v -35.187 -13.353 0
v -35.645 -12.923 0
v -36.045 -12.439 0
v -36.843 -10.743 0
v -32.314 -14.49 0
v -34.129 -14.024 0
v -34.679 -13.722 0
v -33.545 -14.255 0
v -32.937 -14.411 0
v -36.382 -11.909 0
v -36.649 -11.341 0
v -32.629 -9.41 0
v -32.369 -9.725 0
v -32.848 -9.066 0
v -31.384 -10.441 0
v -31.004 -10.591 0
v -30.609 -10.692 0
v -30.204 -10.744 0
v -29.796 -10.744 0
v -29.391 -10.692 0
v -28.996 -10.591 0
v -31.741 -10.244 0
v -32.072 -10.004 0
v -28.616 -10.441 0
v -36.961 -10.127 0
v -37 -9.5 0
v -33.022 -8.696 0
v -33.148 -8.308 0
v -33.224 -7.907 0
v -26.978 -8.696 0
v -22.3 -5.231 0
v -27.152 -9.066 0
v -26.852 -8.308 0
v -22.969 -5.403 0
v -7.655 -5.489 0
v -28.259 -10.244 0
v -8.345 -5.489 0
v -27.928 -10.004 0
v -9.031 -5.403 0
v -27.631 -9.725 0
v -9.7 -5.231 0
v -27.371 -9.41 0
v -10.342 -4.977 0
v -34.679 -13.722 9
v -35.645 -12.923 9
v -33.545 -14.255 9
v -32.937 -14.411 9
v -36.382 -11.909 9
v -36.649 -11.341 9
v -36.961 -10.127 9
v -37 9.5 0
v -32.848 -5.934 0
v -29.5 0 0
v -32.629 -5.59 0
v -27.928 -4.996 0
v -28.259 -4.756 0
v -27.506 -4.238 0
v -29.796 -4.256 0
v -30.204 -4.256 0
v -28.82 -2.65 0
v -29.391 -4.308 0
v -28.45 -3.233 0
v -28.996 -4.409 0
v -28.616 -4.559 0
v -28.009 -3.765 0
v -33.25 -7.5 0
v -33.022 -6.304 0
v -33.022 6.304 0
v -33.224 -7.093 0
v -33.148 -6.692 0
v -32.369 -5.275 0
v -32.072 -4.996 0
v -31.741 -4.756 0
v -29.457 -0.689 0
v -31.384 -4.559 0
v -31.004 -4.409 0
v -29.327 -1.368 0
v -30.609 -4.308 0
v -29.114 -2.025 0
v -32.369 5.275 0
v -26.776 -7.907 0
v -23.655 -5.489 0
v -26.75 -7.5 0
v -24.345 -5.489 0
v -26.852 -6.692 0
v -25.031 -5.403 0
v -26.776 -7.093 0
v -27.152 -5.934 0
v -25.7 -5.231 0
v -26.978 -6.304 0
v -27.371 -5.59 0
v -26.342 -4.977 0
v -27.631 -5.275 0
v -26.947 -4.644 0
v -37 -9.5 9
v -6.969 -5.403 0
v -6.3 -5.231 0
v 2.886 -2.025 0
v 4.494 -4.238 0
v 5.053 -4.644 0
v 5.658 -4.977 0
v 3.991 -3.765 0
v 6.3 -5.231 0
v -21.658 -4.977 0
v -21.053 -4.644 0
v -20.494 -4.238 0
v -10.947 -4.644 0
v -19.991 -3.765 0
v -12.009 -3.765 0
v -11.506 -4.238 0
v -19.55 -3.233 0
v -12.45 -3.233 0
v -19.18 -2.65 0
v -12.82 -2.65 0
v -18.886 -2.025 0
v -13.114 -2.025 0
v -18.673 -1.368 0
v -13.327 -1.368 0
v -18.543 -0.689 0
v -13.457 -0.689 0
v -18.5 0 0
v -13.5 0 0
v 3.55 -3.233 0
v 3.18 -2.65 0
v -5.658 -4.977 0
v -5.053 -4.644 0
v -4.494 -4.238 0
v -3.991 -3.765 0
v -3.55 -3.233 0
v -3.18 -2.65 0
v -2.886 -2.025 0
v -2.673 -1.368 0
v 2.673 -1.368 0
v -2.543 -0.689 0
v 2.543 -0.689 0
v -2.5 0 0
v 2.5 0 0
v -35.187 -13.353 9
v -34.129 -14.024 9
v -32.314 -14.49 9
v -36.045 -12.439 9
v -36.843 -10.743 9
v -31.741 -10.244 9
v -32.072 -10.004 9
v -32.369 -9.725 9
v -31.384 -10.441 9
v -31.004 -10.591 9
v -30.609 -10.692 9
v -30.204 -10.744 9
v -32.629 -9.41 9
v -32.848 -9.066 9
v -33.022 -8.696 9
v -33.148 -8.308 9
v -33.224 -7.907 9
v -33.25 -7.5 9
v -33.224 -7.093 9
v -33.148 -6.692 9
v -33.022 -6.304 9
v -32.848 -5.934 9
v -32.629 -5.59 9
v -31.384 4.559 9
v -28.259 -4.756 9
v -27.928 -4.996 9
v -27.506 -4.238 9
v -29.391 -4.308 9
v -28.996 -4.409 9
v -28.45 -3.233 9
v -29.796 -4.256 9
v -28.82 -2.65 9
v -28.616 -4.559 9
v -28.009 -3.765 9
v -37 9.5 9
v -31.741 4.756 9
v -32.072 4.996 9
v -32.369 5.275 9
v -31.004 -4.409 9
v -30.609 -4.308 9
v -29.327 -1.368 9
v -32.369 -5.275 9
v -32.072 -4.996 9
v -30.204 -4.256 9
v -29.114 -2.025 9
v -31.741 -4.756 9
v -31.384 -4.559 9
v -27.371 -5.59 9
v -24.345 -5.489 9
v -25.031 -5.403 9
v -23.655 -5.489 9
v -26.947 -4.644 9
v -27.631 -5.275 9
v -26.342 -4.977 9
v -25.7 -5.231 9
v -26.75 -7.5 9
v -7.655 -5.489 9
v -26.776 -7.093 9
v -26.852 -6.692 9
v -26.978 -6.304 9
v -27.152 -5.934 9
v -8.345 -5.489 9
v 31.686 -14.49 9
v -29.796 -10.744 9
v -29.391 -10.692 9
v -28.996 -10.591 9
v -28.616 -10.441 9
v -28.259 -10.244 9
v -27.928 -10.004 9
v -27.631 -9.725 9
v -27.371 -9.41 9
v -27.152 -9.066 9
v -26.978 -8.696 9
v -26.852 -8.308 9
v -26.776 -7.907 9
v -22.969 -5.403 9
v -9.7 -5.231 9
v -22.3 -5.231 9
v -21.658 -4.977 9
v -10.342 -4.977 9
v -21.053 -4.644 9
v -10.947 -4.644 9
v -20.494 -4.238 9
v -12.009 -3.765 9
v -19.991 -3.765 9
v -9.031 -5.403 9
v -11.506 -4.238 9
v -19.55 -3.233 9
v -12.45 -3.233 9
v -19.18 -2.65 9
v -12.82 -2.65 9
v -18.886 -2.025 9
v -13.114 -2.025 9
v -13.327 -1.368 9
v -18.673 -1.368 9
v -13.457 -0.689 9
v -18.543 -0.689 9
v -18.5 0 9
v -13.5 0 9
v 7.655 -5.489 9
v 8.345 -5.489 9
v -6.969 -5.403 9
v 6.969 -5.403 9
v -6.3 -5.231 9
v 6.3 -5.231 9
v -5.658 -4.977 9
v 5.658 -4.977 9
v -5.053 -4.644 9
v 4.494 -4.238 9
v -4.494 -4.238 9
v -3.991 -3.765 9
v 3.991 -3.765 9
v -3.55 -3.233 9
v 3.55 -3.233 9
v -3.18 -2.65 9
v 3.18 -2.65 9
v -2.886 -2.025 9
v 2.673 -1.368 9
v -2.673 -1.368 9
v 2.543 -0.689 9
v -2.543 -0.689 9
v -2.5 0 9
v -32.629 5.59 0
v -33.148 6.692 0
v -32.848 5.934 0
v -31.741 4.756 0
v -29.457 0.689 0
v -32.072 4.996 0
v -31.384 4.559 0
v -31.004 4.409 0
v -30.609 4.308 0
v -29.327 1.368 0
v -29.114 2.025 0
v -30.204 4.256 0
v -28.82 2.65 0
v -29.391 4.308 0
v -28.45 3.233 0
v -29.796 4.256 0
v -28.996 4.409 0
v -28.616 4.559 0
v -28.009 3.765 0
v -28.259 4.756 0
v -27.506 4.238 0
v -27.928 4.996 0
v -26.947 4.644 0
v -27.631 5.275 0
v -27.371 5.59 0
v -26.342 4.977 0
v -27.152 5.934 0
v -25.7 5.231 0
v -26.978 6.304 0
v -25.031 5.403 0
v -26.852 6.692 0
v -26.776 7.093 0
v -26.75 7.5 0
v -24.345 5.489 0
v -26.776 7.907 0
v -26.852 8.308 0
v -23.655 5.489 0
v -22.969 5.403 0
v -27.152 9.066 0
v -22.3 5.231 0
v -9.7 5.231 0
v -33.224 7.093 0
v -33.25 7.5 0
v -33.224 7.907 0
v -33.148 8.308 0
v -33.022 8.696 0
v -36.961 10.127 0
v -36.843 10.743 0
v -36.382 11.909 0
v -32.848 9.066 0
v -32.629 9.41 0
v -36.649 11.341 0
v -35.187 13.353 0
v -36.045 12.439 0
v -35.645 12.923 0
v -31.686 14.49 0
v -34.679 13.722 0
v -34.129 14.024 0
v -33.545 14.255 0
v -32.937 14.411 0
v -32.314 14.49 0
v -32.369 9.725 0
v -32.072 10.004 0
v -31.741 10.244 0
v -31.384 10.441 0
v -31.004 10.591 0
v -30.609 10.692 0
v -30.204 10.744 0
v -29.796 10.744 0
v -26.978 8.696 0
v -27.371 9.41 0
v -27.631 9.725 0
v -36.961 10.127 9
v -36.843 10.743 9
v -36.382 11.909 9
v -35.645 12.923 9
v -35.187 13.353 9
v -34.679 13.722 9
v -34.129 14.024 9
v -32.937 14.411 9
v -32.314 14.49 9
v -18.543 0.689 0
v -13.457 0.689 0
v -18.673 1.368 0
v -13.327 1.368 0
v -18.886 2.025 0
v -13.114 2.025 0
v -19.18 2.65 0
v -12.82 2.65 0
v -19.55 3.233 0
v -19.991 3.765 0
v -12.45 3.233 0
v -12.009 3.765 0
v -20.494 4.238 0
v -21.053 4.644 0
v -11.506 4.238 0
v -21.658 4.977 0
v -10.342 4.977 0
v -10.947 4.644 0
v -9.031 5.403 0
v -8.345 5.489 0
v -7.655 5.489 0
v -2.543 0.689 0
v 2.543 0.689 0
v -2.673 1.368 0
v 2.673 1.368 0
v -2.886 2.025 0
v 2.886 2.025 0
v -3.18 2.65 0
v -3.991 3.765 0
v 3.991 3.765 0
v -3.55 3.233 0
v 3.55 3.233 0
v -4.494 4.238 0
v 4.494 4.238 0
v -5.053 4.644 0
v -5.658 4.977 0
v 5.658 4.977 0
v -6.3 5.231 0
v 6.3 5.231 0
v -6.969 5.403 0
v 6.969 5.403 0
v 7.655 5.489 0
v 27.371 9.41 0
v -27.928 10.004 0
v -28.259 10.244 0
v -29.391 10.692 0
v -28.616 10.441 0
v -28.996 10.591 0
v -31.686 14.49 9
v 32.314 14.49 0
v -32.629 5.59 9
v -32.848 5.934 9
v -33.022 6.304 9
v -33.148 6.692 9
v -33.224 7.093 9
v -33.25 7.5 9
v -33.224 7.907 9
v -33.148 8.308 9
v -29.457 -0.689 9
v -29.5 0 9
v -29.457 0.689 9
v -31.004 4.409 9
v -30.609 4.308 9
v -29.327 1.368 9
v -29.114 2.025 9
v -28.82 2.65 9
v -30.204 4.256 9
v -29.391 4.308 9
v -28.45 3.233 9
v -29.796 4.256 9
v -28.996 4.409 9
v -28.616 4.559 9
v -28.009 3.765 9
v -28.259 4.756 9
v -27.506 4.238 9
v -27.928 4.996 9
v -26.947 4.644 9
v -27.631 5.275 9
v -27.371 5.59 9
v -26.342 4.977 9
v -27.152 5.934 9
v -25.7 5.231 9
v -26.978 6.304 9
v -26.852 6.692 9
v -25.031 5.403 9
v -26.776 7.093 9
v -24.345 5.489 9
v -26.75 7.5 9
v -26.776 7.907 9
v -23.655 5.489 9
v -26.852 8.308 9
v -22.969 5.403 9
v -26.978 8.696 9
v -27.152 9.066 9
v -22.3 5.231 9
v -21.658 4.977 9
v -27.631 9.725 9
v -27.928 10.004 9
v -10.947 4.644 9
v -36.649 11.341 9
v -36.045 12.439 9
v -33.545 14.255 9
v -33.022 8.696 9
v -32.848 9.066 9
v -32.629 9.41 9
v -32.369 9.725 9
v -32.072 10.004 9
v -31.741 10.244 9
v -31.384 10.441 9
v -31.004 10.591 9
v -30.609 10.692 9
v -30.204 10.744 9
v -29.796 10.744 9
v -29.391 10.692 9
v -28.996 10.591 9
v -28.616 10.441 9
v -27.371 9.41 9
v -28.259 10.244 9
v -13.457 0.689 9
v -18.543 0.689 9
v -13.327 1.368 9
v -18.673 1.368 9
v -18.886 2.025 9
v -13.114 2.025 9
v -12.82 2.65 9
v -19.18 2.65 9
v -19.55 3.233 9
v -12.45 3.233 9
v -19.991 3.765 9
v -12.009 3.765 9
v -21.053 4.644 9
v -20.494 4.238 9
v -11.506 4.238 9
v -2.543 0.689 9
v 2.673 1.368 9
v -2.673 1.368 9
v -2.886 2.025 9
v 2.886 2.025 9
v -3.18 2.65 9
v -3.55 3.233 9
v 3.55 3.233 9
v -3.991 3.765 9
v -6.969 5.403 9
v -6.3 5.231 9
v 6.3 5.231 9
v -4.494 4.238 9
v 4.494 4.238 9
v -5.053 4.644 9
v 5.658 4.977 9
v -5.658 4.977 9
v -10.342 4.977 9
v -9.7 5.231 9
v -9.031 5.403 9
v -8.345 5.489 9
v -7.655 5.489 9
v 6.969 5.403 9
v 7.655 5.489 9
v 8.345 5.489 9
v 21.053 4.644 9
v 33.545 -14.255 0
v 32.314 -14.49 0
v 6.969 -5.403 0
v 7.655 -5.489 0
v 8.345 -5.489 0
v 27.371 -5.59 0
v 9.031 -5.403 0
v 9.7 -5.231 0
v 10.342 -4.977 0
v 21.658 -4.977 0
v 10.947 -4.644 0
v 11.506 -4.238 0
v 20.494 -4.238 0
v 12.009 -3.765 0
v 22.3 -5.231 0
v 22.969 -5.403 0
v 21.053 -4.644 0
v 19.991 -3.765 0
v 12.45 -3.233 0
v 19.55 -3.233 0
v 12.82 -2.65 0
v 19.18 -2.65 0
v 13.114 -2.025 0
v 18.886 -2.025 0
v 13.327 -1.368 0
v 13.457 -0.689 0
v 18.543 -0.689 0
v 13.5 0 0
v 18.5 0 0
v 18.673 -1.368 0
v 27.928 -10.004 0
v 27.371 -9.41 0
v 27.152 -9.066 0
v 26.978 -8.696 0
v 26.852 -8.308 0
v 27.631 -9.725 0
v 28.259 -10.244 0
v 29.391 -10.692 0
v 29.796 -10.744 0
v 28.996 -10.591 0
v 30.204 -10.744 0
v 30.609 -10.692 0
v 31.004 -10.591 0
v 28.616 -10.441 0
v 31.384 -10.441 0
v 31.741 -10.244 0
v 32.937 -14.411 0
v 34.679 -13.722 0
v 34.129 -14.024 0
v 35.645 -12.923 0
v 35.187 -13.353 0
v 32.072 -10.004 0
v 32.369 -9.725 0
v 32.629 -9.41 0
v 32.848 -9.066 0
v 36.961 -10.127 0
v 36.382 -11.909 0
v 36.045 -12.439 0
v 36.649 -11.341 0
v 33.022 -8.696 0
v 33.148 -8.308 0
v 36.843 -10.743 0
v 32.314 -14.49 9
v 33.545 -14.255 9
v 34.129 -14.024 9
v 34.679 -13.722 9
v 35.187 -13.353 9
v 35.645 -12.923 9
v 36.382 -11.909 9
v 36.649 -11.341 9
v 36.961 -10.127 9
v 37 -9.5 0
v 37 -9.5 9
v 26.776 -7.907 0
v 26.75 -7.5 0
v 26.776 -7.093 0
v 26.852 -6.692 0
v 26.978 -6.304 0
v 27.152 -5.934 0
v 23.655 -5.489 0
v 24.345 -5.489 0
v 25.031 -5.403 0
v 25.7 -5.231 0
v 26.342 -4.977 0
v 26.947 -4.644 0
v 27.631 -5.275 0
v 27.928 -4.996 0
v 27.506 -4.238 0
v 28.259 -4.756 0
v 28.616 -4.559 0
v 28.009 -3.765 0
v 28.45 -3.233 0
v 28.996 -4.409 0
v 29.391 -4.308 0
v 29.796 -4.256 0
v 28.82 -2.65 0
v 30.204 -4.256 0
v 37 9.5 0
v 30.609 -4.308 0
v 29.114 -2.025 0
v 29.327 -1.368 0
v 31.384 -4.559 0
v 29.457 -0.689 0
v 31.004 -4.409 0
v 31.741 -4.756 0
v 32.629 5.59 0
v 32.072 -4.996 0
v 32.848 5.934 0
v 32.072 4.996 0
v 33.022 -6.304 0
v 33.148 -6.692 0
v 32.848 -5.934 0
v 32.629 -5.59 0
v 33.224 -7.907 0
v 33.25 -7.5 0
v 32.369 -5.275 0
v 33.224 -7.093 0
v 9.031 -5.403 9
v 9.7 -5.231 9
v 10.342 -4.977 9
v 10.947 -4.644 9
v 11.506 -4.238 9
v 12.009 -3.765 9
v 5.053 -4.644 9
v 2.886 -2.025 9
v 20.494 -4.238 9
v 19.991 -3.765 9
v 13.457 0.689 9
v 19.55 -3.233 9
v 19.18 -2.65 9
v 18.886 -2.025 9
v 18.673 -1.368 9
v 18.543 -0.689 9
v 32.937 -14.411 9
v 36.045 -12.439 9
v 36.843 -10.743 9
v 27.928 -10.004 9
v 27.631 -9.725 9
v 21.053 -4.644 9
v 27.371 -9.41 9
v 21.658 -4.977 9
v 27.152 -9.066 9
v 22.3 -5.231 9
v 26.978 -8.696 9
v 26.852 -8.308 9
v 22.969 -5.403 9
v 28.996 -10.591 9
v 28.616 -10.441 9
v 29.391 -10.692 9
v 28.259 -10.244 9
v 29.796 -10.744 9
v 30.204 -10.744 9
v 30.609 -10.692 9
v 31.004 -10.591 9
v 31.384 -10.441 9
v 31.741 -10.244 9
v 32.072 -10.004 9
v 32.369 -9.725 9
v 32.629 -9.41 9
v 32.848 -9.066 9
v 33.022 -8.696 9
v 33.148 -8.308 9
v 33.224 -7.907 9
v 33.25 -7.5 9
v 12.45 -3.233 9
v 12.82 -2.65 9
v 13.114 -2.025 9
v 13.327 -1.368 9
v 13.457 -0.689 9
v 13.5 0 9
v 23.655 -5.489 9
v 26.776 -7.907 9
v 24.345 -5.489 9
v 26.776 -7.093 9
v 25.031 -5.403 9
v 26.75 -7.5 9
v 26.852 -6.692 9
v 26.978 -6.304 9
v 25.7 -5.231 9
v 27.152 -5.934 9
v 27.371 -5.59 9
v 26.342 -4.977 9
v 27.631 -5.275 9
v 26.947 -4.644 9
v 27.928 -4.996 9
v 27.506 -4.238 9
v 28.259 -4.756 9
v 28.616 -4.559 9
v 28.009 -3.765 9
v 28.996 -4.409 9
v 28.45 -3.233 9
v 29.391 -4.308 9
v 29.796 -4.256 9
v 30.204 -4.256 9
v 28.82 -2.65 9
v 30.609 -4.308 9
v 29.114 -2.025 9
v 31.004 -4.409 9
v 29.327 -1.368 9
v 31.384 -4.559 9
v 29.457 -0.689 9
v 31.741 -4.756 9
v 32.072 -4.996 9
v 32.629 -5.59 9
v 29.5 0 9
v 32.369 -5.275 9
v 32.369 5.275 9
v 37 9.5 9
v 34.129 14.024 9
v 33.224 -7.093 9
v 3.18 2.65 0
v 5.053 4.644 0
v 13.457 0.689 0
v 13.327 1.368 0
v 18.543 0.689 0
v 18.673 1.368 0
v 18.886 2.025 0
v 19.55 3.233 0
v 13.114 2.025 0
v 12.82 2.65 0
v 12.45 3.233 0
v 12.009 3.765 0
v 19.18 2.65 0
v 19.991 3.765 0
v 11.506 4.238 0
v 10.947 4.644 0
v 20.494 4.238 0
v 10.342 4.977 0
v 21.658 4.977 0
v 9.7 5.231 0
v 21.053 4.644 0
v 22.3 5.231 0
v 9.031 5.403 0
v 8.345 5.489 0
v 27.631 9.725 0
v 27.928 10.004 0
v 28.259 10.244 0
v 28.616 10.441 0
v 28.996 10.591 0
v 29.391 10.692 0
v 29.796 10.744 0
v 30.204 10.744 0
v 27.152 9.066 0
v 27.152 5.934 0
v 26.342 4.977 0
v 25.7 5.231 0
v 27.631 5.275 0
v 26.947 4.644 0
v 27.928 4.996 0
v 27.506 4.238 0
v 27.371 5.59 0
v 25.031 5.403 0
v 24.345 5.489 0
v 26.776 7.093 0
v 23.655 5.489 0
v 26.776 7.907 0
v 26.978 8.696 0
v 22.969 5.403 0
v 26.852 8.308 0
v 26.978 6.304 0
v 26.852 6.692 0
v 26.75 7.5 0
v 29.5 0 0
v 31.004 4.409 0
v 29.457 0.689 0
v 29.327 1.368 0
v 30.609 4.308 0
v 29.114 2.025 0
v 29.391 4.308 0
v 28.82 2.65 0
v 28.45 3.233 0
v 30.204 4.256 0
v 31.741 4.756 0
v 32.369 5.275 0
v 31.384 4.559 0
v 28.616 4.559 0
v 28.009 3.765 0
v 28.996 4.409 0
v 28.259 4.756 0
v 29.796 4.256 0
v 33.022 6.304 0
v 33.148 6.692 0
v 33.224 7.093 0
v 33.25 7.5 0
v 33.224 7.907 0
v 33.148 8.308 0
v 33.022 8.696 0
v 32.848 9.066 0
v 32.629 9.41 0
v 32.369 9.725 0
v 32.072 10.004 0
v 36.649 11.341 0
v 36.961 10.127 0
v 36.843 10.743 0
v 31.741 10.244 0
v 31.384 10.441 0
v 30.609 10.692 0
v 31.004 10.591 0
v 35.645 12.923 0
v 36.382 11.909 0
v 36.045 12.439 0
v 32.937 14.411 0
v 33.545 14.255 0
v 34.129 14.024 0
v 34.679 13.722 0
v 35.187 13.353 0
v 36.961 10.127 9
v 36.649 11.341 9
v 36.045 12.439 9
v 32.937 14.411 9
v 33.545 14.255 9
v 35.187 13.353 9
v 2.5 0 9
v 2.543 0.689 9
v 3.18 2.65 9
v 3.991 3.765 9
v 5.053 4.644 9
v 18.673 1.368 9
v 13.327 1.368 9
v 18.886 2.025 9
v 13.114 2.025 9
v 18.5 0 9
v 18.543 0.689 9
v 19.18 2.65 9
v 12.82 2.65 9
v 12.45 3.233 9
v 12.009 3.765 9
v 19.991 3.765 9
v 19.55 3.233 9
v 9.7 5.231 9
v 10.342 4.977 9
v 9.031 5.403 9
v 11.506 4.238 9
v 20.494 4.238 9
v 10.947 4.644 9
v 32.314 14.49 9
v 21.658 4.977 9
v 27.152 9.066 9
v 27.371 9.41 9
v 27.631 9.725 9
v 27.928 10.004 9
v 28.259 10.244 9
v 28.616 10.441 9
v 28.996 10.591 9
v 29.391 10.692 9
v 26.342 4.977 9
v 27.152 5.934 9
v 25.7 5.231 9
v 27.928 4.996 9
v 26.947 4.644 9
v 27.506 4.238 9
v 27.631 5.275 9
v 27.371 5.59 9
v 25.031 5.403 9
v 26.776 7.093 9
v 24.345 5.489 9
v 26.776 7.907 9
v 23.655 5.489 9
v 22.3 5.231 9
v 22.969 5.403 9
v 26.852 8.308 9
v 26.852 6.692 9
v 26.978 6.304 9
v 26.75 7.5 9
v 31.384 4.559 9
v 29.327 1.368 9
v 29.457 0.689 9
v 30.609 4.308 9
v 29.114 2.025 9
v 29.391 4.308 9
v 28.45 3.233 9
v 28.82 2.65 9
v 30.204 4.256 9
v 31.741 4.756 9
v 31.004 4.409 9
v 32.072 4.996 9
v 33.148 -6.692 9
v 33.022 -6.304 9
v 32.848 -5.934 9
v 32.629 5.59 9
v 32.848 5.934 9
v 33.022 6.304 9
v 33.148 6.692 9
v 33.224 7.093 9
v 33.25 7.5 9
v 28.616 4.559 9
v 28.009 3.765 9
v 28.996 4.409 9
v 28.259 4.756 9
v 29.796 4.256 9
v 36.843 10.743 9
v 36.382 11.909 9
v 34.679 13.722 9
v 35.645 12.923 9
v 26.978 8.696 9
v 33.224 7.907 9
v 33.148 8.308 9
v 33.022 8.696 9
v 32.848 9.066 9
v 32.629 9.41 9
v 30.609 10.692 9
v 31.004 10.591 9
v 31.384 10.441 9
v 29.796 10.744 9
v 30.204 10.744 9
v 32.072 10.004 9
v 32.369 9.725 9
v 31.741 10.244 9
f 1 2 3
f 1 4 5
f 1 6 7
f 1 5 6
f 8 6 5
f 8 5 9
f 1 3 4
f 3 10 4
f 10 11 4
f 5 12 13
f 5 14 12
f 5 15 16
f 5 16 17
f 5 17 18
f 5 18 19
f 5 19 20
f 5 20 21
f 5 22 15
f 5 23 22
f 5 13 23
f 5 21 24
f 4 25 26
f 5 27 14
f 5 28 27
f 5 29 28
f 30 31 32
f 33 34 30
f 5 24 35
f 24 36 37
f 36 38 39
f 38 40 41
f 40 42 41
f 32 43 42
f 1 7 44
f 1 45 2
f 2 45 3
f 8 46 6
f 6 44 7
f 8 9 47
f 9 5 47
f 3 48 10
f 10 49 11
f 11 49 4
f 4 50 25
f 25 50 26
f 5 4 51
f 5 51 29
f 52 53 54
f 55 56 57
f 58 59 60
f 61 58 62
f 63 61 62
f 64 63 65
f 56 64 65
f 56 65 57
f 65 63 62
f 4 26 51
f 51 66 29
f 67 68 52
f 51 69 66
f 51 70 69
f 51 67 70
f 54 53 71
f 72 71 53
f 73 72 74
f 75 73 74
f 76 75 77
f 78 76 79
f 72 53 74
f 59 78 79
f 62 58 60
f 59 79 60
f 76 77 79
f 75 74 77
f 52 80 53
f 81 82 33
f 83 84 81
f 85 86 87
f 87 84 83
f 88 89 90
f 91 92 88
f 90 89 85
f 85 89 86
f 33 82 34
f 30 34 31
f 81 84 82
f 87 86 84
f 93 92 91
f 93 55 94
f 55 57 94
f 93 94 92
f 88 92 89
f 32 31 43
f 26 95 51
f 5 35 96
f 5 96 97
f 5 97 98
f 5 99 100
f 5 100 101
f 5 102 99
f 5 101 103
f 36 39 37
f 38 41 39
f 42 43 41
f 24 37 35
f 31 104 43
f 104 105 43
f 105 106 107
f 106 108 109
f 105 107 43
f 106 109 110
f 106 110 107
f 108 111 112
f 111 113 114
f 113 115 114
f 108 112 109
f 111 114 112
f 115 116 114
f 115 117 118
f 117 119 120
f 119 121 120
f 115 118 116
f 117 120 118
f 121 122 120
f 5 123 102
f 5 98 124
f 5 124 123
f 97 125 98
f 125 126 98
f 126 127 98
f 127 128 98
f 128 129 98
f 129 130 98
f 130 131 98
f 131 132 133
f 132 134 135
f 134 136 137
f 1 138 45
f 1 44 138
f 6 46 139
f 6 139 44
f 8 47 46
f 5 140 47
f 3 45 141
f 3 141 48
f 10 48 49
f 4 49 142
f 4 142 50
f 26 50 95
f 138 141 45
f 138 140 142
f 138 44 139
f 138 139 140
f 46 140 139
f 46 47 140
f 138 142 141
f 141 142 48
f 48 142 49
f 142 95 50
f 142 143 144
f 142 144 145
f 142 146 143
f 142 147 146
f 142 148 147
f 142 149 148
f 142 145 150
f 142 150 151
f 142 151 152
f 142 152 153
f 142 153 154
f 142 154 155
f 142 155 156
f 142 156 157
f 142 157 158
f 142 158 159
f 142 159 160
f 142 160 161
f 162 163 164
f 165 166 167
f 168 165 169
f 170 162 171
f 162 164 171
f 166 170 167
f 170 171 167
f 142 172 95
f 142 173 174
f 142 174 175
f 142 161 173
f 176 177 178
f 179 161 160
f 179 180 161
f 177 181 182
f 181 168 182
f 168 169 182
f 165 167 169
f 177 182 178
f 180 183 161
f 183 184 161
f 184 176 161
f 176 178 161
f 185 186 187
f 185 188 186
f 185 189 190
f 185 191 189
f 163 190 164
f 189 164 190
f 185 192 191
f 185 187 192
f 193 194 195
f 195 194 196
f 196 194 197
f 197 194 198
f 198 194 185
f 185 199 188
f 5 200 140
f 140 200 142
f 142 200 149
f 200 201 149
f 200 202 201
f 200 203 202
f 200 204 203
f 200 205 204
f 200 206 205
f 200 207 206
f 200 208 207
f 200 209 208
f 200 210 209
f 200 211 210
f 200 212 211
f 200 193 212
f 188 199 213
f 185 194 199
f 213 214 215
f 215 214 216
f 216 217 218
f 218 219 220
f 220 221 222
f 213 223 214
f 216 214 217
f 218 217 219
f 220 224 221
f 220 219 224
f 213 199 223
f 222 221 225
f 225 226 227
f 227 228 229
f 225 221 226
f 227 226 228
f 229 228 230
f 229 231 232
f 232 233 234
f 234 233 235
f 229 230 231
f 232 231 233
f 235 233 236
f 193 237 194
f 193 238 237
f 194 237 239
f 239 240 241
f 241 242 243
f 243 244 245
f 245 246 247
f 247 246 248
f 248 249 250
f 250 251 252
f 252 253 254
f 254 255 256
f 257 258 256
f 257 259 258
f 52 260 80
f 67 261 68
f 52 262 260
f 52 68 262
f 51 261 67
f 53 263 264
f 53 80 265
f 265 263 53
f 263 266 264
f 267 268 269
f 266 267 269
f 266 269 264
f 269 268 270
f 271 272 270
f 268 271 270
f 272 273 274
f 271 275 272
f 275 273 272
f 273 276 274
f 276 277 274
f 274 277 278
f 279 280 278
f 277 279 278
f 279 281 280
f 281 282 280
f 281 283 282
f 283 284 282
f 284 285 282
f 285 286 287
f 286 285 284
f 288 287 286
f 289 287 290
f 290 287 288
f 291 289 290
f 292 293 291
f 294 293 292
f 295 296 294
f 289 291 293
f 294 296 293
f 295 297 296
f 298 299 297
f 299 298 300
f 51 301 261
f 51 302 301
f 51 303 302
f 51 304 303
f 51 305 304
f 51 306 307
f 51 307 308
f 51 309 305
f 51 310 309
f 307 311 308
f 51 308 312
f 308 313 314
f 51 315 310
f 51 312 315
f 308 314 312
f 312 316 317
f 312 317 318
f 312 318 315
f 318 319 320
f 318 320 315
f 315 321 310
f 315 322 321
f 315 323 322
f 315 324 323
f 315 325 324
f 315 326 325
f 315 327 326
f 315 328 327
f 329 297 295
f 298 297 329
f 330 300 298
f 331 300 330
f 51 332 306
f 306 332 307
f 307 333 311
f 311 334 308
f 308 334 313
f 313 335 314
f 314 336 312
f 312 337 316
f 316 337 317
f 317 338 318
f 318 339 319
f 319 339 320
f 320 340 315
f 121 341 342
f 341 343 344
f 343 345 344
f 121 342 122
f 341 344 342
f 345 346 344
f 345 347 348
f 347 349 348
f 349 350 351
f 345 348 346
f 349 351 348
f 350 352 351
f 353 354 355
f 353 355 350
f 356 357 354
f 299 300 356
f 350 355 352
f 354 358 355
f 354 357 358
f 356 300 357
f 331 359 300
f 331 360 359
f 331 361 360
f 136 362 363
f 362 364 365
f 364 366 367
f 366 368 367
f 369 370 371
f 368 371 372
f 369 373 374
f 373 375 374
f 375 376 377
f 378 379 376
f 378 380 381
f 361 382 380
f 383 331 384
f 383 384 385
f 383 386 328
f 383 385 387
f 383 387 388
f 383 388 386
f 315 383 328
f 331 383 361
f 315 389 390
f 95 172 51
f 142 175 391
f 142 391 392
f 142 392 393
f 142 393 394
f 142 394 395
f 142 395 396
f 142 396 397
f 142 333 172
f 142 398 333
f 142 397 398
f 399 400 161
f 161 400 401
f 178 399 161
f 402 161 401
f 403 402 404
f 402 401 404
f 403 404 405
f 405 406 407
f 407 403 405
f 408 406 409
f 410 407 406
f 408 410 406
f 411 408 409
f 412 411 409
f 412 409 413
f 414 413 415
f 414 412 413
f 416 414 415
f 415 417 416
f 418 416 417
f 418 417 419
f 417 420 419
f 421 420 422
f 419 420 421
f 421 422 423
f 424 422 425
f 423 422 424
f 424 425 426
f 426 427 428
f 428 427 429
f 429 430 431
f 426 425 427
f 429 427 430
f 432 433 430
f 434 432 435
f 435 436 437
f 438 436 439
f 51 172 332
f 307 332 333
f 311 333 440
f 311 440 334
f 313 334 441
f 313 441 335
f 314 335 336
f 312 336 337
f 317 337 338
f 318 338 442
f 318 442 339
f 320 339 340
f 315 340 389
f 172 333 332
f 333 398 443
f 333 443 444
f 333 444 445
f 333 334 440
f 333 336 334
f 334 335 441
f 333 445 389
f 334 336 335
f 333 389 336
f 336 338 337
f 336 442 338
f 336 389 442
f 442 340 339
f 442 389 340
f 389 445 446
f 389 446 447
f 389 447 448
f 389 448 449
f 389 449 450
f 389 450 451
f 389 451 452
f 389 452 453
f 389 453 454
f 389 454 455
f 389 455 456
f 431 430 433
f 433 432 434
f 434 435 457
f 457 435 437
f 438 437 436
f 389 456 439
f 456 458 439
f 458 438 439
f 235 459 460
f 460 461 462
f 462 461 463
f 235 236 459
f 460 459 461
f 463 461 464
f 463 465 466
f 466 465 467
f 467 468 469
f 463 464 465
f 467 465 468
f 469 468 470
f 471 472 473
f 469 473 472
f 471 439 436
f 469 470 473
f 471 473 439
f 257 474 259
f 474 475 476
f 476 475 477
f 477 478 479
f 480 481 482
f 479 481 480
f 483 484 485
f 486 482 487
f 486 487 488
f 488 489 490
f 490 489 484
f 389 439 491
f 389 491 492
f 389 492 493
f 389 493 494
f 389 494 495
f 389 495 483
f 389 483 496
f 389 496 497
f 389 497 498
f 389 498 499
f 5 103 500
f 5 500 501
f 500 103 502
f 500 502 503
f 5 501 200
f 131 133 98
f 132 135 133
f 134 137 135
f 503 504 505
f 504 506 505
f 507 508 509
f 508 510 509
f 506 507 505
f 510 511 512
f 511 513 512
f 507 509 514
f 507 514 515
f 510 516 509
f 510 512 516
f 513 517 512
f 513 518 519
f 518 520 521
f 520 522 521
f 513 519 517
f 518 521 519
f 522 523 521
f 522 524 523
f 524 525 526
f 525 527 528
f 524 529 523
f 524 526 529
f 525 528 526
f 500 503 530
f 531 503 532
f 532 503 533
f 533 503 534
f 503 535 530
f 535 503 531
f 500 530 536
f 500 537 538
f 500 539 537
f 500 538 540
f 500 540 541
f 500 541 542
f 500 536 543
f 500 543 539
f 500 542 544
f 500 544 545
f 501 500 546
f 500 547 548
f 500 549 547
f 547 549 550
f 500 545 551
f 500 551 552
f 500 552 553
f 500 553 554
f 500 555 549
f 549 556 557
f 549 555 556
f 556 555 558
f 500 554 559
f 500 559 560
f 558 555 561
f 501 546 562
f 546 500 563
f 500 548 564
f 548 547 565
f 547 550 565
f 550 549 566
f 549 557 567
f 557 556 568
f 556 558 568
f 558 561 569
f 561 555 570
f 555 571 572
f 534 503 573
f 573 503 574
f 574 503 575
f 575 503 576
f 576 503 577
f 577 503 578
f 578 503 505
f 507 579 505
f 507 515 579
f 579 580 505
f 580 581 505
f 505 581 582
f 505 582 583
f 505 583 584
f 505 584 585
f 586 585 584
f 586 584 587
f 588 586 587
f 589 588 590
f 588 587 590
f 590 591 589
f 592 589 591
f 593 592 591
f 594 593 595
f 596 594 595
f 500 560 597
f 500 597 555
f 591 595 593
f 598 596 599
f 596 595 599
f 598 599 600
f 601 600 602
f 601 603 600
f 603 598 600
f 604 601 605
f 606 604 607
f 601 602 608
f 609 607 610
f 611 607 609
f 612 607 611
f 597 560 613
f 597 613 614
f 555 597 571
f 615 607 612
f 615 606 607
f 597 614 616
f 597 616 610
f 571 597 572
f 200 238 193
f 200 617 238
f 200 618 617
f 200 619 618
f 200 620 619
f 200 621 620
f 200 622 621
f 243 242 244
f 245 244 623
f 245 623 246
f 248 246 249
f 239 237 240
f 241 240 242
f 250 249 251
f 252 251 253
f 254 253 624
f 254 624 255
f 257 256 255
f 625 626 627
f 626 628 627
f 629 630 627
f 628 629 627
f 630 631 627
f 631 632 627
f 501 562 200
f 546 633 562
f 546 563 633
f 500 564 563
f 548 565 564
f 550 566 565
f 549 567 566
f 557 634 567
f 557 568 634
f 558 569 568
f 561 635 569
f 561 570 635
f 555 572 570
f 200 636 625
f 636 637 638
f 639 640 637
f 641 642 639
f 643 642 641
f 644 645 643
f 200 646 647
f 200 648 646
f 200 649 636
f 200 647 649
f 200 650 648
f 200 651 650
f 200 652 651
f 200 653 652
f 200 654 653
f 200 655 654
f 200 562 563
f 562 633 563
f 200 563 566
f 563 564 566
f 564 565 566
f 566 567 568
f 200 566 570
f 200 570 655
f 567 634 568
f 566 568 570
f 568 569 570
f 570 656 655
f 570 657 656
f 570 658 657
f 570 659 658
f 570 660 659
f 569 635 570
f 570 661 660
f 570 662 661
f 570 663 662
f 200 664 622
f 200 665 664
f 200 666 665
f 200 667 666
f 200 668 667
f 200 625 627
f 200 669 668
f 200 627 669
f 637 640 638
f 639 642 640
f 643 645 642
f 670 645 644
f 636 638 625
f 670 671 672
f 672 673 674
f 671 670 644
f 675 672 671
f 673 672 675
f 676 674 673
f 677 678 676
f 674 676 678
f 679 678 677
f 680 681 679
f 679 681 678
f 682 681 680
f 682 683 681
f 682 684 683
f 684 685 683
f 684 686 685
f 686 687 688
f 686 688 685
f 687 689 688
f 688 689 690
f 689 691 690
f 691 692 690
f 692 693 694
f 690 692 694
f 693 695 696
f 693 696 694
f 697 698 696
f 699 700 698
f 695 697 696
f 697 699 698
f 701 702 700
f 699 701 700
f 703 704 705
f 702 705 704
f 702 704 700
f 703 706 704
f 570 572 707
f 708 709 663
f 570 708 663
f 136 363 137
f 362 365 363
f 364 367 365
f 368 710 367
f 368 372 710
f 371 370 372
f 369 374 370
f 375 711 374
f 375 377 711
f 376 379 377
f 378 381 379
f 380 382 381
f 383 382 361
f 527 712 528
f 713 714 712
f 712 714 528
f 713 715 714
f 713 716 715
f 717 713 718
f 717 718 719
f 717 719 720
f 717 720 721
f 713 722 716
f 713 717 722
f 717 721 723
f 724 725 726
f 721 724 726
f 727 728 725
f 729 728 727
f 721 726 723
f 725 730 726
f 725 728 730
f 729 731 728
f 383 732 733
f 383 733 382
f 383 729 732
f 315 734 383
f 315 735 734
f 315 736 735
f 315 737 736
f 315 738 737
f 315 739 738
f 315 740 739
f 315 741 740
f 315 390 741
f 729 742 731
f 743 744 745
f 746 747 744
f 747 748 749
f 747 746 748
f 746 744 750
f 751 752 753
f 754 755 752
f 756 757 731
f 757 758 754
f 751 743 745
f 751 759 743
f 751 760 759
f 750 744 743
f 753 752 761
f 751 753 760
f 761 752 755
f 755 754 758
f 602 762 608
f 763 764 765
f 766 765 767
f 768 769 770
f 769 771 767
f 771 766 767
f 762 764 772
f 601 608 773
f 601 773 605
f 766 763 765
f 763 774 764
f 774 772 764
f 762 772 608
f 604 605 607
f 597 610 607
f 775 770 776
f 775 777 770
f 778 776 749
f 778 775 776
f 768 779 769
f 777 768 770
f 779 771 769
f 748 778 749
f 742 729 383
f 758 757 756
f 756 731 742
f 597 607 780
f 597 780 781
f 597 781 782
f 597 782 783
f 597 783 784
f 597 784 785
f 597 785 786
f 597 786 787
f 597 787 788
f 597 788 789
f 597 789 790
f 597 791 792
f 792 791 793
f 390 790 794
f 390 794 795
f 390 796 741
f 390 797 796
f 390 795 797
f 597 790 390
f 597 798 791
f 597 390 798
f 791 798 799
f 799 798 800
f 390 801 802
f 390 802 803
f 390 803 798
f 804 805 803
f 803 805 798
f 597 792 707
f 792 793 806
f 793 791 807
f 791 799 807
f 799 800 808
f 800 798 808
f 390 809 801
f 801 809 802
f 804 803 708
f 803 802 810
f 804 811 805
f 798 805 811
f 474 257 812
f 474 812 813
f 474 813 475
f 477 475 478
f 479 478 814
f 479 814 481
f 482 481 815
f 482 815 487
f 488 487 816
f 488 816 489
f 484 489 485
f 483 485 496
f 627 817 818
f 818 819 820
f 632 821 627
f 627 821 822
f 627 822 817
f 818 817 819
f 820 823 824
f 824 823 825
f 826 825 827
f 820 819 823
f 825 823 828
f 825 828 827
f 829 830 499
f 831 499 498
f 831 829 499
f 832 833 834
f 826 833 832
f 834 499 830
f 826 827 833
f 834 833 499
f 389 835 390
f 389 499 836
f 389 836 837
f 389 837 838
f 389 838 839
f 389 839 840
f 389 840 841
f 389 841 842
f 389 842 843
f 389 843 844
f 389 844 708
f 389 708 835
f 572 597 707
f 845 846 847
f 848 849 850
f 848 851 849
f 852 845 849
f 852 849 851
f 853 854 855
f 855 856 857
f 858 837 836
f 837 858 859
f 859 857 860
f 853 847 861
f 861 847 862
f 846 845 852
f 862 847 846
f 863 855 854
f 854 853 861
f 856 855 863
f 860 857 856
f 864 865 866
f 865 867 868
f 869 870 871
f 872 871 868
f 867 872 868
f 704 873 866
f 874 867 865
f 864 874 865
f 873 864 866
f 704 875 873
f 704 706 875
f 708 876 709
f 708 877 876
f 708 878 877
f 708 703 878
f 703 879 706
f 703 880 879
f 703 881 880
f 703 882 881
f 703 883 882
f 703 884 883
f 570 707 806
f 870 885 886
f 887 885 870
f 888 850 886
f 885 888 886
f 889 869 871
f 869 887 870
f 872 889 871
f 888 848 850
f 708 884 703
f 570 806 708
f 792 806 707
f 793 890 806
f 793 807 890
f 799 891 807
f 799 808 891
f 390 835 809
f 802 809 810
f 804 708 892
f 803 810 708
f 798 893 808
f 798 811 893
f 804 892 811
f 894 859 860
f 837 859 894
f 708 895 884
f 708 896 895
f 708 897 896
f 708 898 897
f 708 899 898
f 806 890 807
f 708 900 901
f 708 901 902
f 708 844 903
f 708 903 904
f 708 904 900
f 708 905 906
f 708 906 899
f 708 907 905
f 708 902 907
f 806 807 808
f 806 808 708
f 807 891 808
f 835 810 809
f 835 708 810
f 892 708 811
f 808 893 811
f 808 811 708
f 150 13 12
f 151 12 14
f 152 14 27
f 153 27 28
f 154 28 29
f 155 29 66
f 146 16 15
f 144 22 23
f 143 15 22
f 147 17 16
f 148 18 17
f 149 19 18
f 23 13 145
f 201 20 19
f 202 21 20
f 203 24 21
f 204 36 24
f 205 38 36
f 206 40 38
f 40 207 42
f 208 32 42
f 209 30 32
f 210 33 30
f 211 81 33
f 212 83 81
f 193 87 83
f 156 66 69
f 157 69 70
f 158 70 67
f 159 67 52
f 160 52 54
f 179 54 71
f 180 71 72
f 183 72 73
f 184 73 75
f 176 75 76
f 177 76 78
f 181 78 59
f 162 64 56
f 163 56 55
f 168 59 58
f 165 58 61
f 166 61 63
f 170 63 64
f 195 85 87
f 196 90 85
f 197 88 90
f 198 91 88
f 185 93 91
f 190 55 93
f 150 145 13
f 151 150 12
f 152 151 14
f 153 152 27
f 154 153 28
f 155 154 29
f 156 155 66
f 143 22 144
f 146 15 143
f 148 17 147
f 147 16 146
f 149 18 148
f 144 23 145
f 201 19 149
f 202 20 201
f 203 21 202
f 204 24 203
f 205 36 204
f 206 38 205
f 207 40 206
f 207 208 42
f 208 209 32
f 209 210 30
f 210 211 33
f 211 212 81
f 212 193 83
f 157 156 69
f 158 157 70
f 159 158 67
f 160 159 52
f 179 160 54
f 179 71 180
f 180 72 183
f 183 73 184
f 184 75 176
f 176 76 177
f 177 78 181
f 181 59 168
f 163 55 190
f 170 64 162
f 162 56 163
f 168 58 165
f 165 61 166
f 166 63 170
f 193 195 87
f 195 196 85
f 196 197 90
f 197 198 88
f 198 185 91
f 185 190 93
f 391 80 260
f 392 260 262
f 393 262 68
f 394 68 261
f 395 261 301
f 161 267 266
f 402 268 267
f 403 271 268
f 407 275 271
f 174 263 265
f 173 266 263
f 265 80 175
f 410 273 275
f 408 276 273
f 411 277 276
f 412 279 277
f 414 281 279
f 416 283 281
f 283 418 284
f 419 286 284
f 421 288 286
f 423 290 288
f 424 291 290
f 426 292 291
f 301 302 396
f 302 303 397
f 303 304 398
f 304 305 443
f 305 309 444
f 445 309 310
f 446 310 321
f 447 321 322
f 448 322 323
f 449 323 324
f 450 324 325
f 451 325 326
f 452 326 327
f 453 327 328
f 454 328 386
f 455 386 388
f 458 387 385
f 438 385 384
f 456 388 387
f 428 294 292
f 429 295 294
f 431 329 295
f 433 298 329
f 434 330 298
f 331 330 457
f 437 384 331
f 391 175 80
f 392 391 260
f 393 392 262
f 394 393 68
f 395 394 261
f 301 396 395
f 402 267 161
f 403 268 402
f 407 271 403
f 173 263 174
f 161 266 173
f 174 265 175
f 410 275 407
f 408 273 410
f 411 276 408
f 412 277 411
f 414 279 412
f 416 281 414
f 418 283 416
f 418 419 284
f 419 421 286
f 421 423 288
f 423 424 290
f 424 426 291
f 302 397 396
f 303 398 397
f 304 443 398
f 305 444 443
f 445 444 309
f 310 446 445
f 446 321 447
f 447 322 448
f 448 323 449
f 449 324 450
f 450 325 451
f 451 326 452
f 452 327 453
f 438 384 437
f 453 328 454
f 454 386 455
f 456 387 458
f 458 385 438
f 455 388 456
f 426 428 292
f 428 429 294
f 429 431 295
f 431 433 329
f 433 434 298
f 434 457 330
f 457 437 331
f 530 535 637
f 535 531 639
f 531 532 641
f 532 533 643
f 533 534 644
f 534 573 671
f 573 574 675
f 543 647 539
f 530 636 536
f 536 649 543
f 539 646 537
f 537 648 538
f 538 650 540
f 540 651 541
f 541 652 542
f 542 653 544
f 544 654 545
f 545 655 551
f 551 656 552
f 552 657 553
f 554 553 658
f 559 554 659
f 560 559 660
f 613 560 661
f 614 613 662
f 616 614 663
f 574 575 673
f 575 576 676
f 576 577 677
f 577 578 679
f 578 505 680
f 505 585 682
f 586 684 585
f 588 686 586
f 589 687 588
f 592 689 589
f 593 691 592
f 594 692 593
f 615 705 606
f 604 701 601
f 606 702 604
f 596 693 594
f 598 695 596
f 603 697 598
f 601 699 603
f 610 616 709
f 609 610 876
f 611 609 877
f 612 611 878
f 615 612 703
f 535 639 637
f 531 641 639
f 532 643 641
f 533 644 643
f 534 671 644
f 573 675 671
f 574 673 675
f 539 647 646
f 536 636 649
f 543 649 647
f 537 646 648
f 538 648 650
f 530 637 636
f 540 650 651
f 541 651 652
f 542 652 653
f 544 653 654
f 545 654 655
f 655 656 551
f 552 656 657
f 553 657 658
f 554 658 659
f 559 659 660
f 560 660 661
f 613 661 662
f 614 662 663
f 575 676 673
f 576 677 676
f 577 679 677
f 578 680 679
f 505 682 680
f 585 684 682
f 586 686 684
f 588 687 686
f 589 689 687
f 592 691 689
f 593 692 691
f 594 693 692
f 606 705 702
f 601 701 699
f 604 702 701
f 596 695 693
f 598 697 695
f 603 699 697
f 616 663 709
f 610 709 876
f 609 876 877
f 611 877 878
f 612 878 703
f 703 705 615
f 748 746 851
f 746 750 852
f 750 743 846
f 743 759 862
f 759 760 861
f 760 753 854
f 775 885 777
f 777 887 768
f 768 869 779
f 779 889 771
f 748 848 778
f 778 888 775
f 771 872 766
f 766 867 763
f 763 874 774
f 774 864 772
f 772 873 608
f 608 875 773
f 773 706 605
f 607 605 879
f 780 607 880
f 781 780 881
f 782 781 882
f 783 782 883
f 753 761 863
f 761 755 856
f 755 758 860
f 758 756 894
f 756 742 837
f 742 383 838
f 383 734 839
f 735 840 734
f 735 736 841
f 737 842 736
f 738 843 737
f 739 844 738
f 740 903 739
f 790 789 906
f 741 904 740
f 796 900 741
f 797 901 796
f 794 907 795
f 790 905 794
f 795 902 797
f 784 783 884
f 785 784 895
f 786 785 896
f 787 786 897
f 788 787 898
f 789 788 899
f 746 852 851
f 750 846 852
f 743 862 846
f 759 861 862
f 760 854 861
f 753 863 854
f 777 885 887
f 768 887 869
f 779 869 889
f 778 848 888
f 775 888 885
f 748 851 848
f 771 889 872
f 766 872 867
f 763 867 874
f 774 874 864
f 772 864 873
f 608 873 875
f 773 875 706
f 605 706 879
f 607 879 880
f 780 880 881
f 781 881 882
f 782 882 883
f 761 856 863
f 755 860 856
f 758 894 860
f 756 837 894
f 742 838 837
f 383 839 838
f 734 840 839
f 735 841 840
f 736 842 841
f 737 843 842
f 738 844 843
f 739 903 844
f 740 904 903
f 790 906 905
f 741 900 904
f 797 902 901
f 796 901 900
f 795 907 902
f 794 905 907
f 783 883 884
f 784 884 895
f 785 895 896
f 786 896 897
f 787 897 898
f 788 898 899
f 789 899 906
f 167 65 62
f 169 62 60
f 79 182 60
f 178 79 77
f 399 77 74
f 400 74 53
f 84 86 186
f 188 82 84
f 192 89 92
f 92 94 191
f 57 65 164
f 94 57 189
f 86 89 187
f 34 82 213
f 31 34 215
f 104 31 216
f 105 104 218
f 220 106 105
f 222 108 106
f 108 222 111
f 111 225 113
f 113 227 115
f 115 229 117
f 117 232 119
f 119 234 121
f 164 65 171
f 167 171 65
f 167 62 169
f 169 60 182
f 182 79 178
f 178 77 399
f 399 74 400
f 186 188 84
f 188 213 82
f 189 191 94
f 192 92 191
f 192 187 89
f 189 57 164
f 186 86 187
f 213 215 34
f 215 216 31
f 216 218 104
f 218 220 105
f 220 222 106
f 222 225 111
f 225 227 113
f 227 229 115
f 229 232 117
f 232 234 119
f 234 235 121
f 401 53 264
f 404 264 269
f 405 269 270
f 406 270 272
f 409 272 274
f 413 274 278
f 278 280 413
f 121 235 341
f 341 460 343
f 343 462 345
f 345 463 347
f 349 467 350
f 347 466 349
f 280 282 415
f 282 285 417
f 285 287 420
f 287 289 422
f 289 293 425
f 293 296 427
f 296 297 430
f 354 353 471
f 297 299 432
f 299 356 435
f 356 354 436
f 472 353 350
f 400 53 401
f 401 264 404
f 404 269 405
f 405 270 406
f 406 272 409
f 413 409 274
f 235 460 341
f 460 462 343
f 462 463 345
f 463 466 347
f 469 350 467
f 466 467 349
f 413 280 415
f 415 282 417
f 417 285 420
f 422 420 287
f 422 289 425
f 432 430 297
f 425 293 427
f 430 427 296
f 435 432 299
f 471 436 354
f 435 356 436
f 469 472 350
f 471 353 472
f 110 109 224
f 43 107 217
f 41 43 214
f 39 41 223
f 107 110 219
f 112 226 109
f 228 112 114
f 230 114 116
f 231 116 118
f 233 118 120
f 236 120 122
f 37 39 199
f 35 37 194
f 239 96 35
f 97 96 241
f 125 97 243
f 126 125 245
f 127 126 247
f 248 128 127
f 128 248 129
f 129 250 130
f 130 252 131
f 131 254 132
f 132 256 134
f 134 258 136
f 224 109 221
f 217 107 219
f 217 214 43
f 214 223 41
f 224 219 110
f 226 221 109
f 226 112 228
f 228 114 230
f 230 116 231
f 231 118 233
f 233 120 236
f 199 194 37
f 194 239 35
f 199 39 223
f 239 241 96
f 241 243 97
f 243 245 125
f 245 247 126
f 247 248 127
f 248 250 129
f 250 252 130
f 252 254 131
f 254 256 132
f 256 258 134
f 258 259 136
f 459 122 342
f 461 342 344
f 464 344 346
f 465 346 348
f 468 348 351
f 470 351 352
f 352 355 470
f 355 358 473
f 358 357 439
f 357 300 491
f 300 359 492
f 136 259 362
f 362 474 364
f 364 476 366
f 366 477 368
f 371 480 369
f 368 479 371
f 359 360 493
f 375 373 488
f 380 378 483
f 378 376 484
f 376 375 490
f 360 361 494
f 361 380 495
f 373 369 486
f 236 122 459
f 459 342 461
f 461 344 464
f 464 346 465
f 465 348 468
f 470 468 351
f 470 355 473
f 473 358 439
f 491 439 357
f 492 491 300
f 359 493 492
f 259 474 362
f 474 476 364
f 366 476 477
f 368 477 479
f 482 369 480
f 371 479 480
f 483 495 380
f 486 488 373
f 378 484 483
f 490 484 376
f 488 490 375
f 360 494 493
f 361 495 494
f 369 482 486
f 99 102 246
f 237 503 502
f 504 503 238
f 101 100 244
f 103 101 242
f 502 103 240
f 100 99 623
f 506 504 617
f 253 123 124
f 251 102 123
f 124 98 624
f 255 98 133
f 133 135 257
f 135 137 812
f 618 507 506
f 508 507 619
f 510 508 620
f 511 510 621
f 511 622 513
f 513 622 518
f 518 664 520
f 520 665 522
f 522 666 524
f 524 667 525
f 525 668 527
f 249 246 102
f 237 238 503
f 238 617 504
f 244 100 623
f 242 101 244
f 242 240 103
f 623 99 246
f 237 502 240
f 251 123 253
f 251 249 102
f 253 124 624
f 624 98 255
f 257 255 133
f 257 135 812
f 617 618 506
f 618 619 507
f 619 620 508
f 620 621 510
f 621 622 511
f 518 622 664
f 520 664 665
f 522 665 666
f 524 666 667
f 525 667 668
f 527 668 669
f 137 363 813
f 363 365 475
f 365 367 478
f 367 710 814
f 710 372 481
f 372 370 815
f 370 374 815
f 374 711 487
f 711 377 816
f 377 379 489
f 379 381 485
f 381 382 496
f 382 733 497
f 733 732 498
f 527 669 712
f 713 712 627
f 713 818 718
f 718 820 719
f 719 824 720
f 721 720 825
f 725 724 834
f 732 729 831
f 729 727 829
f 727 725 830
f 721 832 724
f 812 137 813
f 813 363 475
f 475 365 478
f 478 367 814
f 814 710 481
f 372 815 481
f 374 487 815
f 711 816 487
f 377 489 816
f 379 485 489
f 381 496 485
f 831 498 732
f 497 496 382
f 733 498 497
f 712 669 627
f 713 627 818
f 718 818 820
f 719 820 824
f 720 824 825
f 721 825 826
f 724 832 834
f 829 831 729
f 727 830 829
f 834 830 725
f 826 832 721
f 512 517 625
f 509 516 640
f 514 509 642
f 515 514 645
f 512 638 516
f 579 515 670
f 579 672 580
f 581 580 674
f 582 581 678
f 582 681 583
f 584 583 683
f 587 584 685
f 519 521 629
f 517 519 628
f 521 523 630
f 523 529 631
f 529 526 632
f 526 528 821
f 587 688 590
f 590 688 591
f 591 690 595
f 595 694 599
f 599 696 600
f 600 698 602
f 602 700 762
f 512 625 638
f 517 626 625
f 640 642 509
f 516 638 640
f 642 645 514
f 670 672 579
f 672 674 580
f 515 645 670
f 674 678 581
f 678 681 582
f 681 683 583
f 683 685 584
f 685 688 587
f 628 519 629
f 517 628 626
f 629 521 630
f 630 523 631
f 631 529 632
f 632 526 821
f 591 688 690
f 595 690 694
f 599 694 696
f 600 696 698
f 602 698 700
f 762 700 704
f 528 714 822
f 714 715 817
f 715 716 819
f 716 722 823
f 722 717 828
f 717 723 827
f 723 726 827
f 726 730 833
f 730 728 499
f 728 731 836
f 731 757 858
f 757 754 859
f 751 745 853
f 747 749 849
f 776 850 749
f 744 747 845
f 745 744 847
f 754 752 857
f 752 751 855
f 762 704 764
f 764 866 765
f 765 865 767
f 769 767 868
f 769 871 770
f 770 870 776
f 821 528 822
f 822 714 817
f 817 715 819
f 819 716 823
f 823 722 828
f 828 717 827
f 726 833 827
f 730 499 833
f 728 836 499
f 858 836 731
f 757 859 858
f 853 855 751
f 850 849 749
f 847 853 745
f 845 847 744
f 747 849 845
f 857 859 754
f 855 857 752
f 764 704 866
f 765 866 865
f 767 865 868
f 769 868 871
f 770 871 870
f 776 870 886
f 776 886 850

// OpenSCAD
$fn = 50;

difference() {
	union() {
		hull() {
			translate(v = [-32.0, 9.5, 0]) {
				cylinder(h = 9, r = 5);
			}
			translate(v = [32.0, 9.5, 0]) {
				cylinder(h = 9, r = 5);
			}
			translate(v = [-32.0, -9.5, 0]) {
				cylinder(h = 9, r = 5);
			}
			translate(v = [32.0, -9.5, 0]) {
				cylinder(h = 9, r = 5);
			}
		}
	}
	union() {
		translate(v = [-30.0, -7.5, -100.0]) {
			cylinder(h = 200, r = 3.25);
		}
		translate(v = [-30.0, 7.5, -100.0]) {
			cylinder(h = 200, r = 3.25);
		}
		translate(v = [30.0, -7.5, -100.0]) {
			cylinder(h = 200, r = 3.25);
		}
		translate(v = [30.0, 7.5, -100.0]) {
			cylinder(h = 200, r = 3.25);
		}
		translate(v = [-30.0, -7.5, -100.0]) {
			cylinder(h = 200, r = 1.8);
		}
		translate(v = [-30.0, 7.5, -100.0]) {
			cylinder(h = 200, r = 1.8);
		}
		translate(v = [30.0, -7.5, -100.0]) {
			cylinder(h = 200, r = 1.8);
		}
		translate(v = [30.0, 7.5, -100.0]) {
			cylinder(h = 200, r = 1.8);
		}
		translate(v = [-24.0, 0, 0.0]) {
			cylinder(h = 9, r = 5.5);
		}
		translate(v = [-8.0, 0, 0.0]) {
			cylinder(h = 9, r = 5.5);
		}
		translate(v = [8.0, 0, 0.0]) {
			cylinder(h = 9, r = 5.5);
		}
		translate(v = [24.0, 0, 0.0]) {
			cylinder(h = 9, r = 5.5);
		}
	}
}
